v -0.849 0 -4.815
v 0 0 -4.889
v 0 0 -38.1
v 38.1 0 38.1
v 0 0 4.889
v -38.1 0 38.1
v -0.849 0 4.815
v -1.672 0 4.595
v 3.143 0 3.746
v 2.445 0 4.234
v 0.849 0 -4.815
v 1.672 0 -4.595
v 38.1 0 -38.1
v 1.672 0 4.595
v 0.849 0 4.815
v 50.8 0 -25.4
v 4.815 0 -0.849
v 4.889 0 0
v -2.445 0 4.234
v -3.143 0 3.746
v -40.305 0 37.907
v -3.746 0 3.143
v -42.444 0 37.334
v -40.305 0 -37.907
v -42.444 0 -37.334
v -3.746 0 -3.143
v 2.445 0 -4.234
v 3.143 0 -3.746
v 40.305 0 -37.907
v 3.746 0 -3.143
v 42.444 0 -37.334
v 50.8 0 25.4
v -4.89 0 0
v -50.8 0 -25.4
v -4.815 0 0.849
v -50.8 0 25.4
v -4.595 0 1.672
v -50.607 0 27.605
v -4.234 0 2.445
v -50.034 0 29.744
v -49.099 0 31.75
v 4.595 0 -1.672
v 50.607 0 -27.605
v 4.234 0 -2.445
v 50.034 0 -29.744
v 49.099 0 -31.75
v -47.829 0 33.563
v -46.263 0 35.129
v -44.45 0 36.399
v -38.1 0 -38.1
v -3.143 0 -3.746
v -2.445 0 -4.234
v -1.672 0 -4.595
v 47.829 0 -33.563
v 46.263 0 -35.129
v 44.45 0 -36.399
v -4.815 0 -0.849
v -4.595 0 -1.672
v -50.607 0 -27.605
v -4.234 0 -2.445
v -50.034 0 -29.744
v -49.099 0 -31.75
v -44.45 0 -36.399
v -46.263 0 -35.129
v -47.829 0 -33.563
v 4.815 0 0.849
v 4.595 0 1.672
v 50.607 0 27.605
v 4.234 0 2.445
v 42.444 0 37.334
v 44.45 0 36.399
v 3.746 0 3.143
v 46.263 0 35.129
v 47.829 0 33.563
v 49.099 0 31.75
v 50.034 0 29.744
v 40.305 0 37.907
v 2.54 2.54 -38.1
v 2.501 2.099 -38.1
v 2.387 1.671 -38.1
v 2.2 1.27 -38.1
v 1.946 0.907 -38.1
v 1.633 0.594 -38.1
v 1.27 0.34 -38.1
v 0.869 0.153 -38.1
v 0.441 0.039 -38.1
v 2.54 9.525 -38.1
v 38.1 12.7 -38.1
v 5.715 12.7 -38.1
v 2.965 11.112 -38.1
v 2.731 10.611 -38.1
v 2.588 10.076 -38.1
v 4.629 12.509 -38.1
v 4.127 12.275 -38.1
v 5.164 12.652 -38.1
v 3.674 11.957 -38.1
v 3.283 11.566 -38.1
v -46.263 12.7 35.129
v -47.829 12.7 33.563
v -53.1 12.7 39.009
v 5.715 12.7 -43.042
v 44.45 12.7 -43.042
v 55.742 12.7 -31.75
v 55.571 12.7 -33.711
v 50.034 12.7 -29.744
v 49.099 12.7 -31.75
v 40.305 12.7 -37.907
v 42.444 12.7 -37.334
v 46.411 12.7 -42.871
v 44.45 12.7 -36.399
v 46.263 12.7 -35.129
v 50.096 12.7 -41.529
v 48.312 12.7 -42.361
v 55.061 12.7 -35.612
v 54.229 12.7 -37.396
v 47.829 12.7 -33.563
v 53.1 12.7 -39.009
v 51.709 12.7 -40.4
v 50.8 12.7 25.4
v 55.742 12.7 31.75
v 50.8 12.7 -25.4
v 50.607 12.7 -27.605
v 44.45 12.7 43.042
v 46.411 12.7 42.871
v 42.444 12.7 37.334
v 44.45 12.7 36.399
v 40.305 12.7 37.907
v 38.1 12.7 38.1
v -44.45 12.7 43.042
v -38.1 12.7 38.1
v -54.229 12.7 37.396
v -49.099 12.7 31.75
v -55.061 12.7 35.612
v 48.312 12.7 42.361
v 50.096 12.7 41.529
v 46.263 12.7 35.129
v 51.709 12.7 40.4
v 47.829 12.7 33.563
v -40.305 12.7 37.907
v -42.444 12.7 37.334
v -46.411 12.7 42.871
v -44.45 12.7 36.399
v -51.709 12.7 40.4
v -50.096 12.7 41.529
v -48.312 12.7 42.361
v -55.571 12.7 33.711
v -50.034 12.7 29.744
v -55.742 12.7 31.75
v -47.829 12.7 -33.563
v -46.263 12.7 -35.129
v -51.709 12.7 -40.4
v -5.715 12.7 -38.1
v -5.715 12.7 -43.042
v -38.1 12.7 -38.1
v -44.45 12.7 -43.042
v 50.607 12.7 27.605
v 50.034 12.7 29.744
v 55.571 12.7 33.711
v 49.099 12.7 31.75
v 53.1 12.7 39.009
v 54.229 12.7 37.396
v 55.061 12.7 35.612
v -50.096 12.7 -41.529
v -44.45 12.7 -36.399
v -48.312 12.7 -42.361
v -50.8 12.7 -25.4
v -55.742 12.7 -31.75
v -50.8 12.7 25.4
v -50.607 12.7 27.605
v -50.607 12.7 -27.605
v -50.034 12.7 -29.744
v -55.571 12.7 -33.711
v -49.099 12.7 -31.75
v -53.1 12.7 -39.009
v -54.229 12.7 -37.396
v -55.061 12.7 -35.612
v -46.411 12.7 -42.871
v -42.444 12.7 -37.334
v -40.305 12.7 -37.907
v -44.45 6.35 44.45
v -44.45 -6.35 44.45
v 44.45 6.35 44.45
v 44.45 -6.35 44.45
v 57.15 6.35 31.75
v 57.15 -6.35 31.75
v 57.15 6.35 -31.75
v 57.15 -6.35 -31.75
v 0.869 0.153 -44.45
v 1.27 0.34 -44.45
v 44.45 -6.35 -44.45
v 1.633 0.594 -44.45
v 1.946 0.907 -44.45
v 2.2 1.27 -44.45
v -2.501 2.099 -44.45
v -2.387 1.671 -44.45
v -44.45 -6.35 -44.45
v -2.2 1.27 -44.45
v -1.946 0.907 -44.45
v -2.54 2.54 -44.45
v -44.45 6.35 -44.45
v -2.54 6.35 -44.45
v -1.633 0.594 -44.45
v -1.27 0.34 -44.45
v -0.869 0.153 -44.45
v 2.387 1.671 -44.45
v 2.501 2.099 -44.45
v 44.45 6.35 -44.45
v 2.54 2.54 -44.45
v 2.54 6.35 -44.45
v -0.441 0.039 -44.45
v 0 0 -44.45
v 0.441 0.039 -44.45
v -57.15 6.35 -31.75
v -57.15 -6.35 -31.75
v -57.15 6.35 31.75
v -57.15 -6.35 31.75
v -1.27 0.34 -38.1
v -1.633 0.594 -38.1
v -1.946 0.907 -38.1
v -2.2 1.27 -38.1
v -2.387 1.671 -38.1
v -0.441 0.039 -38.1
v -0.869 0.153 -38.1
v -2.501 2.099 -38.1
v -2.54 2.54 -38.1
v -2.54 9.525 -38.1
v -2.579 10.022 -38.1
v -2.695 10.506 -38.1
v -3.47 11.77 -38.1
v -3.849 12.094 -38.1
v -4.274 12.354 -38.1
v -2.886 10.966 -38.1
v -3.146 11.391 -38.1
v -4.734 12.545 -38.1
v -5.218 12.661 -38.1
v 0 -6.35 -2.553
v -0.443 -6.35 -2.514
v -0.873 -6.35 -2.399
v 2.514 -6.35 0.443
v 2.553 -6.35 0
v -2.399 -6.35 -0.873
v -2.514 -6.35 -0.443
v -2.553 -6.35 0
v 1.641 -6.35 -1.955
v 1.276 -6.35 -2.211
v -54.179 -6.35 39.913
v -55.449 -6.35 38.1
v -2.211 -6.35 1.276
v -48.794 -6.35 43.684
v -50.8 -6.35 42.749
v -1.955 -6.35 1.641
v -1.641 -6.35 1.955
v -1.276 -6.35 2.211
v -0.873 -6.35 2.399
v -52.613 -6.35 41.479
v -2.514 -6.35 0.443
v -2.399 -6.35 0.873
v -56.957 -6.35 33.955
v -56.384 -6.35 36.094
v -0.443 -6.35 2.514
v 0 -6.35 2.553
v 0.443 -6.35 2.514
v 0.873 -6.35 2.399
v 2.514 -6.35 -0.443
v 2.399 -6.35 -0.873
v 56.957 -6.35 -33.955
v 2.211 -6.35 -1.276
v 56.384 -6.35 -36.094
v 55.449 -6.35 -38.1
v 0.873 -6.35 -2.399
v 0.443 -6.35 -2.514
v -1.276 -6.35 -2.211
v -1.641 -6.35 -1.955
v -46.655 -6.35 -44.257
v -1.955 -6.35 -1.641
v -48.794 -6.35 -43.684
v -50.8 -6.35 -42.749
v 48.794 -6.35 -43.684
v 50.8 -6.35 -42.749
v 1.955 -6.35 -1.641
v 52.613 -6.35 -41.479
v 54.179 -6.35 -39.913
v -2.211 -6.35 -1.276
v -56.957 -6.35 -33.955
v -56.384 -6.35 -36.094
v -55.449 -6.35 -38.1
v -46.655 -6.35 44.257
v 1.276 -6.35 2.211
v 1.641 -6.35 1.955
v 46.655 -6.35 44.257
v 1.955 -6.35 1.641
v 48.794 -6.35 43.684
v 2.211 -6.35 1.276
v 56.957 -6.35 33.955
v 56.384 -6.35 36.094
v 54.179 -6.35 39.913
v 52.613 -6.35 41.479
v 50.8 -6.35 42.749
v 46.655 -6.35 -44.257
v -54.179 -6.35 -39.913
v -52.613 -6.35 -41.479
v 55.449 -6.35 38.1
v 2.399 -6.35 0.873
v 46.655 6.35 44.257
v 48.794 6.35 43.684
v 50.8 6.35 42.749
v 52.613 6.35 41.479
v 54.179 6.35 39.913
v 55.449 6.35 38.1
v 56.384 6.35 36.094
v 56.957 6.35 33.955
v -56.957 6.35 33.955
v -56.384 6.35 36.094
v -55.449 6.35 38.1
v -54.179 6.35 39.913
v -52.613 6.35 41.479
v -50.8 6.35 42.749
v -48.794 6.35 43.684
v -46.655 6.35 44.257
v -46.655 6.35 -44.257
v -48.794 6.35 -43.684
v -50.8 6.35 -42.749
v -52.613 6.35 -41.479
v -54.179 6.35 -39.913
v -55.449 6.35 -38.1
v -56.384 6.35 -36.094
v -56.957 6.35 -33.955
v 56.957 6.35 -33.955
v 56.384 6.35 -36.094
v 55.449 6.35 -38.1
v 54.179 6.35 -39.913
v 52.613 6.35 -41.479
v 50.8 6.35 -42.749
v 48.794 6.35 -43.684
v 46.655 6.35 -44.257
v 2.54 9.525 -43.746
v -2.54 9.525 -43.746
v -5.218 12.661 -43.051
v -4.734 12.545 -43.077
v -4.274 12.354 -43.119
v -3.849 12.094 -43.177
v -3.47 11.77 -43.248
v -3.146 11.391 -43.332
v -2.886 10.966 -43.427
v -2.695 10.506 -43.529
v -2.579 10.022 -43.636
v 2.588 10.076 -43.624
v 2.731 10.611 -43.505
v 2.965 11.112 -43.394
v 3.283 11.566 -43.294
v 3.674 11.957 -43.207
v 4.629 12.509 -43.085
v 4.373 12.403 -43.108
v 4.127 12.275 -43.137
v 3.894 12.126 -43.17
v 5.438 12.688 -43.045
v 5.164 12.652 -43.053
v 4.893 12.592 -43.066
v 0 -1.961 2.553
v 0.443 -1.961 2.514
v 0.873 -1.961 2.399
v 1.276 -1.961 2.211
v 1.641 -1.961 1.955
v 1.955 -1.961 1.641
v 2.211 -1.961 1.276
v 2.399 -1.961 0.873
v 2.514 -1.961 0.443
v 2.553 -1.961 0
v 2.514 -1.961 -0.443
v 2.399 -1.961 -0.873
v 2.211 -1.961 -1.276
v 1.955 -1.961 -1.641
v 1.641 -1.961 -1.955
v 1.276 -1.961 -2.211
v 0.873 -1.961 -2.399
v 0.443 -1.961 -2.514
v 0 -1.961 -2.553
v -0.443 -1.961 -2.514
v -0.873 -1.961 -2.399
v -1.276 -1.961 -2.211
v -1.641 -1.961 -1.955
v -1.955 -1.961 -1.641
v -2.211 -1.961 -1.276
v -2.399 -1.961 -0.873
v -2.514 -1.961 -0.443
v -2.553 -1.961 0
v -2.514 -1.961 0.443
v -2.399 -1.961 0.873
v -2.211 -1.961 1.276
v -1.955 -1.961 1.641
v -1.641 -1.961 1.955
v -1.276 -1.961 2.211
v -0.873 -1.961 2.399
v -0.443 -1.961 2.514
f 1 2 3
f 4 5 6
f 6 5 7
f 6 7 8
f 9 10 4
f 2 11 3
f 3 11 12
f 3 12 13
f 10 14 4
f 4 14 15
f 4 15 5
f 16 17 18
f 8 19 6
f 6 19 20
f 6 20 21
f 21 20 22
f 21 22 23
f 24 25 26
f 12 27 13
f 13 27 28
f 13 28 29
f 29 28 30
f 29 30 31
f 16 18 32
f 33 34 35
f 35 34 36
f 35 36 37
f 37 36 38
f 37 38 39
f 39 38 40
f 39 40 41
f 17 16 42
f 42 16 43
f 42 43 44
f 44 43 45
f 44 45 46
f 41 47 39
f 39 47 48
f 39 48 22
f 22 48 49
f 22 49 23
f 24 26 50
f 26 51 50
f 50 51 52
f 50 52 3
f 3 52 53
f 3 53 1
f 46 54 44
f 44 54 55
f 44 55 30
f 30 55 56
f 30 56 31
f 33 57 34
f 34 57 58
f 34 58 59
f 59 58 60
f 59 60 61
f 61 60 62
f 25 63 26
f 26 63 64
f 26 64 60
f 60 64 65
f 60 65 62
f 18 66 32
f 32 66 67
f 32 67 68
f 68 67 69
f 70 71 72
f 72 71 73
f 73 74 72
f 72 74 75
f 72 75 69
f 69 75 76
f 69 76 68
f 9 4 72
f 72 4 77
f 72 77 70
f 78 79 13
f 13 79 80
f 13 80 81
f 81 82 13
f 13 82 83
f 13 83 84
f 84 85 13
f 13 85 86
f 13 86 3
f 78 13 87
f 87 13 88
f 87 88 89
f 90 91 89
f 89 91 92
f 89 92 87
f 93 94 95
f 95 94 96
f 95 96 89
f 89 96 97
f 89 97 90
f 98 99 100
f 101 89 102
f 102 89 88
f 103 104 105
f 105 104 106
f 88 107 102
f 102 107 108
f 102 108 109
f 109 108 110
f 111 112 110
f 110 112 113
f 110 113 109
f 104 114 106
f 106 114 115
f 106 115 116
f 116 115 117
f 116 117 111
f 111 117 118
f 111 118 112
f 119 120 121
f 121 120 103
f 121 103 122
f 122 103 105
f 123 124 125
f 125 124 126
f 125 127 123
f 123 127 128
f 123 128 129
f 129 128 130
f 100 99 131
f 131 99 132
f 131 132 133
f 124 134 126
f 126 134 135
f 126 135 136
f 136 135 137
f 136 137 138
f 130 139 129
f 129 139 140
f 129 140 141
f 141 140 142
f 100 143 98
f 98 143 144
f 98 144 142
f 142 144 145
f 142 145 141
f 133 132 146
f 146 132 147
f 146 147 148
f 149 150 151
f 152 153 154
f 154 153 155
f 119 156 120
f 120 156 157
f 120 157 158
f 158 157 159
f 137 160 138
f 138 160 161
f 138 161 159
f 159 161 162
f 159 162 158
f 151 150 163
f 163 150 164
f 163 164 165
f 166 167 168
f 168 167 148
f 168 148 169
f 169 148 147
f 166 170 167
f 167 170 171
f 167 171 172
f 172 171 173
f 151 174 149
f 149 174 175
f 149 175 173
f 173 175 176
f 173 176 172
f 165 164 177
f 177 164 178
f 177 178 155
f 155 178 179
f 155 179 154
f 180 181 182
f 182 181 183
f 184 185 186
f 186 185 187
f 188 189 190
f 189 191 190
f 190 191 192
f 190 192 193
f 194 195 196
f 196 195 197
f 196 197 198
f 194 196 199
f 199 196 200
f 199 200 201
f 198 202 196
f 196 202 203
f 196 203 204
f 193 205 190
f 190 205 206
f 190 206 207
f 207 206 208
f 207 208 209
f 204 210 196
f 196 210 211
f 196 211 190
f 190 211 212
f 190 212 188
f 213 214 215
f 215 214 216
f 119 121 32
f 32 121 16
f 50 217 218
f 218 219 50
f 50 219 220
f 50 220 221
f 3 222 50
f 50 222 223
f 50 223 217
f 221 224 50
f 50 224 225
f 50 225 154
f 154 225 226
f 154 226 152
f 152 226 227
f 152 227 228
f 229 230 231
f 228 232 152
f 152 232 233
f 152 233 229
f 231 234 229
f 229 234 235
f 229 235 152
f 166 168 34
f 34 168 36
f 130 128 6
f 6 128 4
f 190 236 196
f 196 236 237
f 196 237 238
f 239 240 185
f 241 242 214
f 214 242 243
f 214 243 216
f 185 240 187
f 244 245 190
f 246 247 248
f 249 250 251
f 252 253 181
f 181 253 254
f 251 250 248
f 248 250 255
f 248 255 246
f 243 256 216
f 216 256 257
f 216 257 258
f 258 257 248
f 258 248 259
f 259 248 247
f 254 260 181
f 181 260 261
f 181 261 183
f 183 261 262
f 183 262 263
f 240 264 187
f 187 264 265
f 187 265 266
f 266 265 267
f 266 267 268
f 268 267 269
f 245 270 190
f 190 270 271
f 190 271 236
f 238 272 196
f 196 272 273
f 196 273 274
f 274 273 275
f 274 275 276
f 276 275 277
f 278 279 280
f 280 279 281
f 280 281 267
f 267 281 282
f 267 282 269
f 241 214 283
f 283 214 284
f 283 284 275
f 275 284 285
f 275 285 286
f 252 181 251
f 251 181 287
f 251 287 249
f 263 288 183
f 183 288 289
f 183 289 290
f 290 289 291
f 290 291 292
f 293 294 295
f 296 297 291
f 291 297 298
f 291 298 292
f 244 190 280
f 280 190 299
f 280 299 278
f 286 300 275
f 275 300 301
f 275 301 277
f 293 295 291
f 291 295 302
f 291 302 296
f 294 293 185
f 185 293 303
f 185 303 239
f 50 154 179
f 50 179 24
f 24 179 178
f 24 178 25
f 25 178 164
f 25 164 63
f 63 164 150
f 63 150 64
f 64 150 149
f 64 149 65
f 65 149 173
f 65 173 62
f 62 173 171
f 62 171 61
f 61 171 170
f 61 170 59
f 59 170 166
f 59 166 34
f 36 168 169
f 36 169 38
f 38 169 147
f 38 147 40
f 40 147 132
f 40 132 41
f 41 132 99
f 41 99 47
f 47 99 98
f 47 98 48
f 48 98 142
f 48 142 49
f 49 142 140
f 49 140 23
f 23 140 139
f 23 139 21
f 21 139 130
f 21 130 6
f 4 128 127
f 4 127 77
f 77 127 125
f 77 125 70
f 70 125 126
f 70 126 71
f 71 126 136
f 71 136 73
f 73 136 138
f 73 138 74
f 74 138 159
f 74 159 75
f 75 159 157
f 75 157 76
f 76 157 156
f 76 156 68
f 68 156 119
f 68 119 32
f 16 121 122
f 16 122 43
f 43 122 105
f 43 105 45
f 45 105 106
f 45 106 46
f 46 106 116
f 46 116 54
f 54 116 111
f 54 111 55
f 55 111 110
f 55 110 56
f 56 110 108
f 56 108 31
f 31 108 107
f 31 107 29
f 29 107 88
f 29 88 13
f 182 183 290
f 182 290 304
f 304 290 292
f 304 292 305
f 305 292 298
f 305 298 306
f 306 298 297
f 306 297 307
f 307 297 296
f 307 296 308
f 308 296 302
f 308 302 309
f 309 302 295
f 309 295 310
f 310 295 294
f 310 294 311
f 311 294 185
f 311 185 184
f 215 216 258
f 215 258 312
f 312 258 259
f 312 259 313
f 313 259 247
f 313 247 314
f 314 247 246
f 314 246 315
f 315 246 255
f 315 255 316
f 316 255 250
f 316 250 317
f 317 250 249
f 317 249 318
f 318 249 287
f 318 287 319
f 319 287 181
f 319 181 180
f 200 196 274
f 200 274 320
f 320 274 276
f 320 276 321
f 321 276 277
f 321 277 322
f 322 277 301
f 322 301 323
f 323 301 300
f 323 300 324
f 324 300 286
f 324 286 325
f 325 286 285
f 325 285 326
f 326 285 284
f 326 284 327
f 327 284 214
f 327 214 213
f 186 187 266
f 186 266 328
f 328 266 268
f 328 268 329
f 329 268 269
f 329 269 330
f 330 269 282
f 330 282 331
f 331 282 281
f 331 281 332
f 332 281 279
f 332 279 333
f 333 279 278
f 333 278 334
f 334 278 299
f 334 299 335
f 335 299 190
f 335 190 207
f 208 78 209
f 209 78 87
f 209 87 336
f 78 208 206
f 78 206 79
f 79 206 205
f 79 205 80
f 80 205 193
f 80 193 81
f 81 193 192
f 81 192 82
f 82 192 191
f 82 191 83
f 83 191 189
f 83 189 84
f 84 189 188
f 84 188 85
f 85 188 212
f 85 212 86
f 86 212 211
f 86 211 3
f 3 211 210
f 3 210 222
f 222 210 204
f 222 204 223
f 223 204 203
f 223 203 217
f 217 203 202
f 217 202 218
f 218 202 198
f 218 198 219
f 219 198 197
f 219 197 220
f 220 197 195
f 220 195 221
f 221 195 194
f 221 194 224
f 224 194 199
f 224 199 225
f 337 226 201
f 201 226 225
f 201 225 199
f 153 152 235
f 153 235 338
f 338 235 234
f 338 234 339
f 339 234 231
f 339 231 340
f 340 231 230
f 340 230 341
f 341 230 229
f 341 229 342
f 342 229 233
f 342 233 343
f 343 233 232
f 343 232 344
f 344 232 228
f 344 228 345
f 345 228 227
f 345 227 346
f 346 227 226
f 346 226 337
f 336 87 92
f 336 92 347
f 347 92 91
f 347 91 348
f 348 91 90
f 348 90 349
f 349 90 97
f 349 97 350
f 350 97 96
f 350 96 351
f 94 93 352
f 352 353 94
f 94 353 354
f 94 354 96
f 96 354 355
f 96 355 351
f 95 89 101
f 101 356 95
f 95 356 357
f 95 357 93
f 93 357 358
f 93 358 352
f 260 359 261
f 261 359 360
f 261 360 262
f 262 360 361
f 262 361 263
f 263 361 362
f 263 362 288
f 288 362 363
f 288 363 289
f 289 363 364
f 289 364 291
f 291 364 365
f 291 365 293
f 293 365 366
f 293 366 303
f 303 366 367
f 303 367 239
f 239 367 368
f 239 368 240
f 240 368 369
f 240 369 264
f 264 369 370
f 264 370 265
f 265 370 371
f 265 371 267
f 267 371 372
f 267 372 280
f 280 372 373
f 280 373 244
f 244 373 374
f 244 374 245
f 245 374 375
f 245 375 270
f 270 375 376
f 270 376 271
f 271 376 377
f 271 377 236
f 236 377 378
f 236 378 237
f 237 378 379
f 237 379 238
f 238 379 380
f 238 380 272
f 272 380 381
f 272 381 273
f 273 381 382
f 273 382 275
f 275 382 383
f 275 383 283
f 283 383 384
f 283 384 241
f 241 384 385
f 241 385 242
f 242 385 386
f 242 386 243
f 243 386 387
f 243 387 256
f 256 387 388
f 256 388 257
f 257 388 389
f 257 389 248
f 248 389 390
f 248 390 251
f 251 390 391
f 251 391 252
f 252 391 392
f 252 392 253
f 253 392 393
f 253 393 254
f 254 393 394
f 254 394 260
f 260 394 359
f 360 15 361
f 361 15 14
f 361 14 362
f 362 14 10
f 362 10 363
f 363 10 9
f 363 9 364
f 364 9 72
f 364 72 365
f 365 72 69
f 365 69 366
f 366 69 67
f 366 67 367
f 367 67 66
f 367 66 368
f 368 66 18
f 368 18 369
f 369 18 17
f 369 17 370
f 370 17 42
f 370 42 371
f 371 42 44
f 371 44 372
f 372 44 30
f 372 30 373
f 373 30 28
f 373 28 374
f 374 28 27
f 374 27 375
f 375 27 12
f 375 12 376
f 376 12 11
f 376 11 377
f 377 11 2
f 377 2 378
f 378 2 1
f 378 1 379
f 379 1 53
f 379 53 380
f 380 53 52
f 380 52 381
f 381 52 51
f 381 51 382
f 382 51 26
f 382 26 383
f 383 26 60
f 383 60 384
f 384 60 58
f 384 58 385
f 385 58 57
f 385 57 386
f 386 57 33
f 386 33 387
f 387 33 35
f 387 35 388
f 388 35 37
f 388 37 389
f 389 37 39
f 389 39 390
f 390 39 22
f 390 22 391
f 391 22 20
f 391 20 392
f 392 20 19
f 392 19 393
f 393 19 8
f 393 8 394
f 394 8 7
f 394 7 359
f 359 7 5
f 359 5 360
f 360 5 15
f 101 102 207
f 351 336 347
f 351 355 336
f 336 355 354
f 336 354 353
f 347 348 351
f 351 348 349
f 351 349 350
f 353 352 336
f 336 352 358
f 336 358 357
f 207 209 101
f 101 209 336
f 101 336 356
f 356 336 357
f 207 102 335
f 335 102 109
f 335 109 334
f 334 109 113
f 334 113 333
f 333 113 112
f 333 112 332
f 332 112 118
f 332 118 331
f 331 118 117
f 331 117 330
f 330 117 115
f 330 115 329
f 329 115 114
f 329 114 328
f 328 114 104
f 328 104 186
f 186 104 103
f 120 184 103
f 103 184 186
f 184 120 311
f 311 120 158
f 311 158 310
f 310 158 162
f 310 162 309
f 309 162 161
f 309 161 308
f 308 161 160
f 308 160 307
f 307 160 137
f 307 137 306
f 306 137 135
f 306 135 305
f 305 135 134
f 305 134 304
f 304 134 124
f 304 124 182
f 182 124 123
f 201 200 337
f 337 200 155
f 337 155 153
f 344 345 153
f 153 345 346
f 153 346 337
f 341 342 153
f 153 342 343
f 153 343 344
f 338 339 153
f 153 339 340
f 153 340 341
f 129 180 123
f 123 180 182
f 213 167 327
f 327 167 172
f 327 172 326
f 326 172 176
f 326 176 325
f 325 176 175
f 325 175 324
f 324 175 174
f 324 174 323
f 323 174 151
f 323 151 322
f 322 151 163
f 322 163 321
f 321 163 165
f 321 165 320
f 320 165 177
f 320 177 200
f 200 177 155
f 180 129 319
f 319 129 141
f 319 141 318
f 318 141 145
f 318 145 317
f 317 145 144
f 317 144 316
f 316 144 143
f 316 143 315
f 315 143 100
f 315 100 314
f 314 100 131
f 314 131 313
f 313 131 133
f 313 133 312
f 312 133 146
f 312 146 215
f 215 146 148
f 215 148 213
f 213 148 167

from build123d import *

# Parameters (mm, degrees)
SKETCH1_W                                          = 114.3
SKETCH1_H                                          = 88.9
SKETCH1_W_2                                        = 101.6
SKETCH1_H_2                                        = 76.2
BOSS_EXTRUDE1_DEPTH                                = 12.7
SKETCH2_W                                          = 114.3
SKETCH2_H                                          = 88.9
BOSS_EXTRUDE2_DEPTH                                = 6.35
FILLET1_R                                          = 12.7
CUT_EXTRUDE1_REACH                                 = 108.445
FILLET2_R                                          = 3.175
CSK_FOR_10_FLAT_HEAD_MACHINE_SCREW_100_D           = 5.1054
CSK_FOR_10_FLAT_HEAD_MACHINE_SCREW_100_CSINK_D     = 9.779
CSK_FOR_10_FLAT_HEAD_MACHINE_SCREW_100_CSINK_ANGLE = 100
CHAMFER1_SIZE                                      = 1.407761108
CHAMFER1_SIZE_2                                    = 6.35


with BuildPart() as part:
    # Sketch1 → Boss-Extrude1 (new body)
    with BuildSketch(Plane(origin=(0, 0, 0), x_dir=(1, 0, 0), z_dir=(0, 1, 0))):
        Rectangle(SKETCH1_W, SKETCH1_H)
        Rectangle(SKETCH1_W_2, SKETCH1_H_2, mode=Mode.SUBTRACT)
    extrude(amount=BOSS_EXTRUDE1_DEPTH)

    # Sketch2 → Boss-Extrude2 (add)
    with BuildSketch(Plane.XZ):
        Rectangle(SKETCH2_W, SKETCH2_H)
    extrude(amount=BOSS_EXTRUDE2_DEPTH)

    # Fillet1
    fillet1_edges = [part.edges().sort_by_distance(p)[0] for p in [
        (50.8, 6.35, 38.1),
        (50.8, 6.35, -38.1),
        (-50.8, 6.35, -38.1),
        (-50.8, 6.35, 38.1),
        (-57.15, 3.175, 44.45),
        (-57.15, 3.175, -44.45),
        (57.15, 3.175, -44.45),
        (57.15, 3.175, 44.45),
    ]]
    fillet(fillet1_edges, radius=FILLET1_R)

    # Sketch3 → Cut-Extrude1 (cut, up to next)
    with BuildSketch(Plane(origin=(0, 0, -44.45), x_dir=(-1, 0, 0), z_dir=(0, 0, -1)), mode=Mode.PRIVATE) as cut_extrude1_sk1:
        with BuildLine():
            Line((2.54, 22.86), (2.54, 2.54))
            ThreePointArc((2.54, 2.54), (0, 0), (-2.54, 2.54))
            Line((-2.54, 2.54), (-2.54, 22.86))
            ThreePointArc((-2.54, 22.86), (0, 25.4), (2.54, 22.86))
        make_face()
    cut_extrude1_tool1 = extrude(cut_extrude1_sk1.sketch, amount=-CUT_EXTRUDE1_REACH, mode=Mode.PRIVATE) & part.part
    add(cut_extrude1_tool1.solids().sort_by_distance((0, 12.7, -44.45))[0], mode=Mode.SUBTRACT)

    # Fillet2
    fillet2_edges = [part.edges().sort_by_distance(p)[0] for p in [
        (2.54, 12.7, -41.275),
        (-2.54, 12.7, -41.275),
    ]]
    fillet(fillet2_edges, radius=FILLET2_R)

    # CSK for #10 Flat Head Machine Screw (100)1 (through all)
    with Locations(Plane(origin=(0, 0, 0), x_dir=(1, 0, 0), z_dir=(0, 1, 0))):
        with Locations((0, 0)):
            CounterSinkHole(CSK_FOR_10_FLAT_HEAD_MACHINE_SCREW_100_D / 2, CSK_FOR_10_FLAT_HEAD_MACHINE_SCREW_100_CSINK_D / 2, counter_sink_angle=CSK_FOR_10_FLAT_HEAD_MACHINE_SCREW_100_CSINK_ANGLE)

    # Chamfer1
    # the kernel refuses this chamfer: 6.35, 1.407761108 mm, written as the material it takes off along each edge
    with BuildSketch(Plane(origin=(-44.45, 12.7, -44.45), x_dir=(0, 0.16714603522124954, 0.9859321492424399), z_dir=(1, 0, 0)), Plane(origin=(-10.78052054, 12.7, -44.45), x_dir=(0, 0.16714603522124954, 0.9859321492424399), z_dir=(1, 0, 0))) as chamfer1_piece_1:
        Polygon((CHAMFER1_SIZE * 0.98593214909, CHAMFER1_SIZE * 0.167146035195), (-CHAMFER1_SIZE_2 * 0.167146035221, CHAMFER1_SIZE_2 * 0.985932149242), (0, 0), align=None)
    extrude(amount=55.23052054, mode=Mode.SUBTRACT)
    with BuildSketch(Plane(origin=(57.15, 12.7, -31.75), x_dir=(-0.9859321492424399, 0.16714603522124954, 0), z_dir=(0, 0, 1)), Plane(origin=(-57.15, 12.7, 31.75), x_dir=(0.9859321492424399, 0.16714603522124954, 0), z_dir=(0, 0, -1))) as chamfer1_piece_2:
        Polygon((CHAMFER1_SIZE * 0.98593214909, CHAMFER1_SIZE * 0.167146035195), (-CHAMFER1_SIZE_2 * 0.167146035221, CHAMFER1_SIZE_2 * 0.985932149242), (0, 0), align=None)
    extrude(amount=63.5, mode=Mode.SUBTRACT)
    with BuildSketch(Plane(origin=(44.45, 12.7, 44.45), x_dir=(0, 0.16714603522124954, -0.9859321492424399), z_dir=(-1, 0, 0))) as chamfer1_piece_3:
        Polygon((CHAMFER1_SIZE * 0.98593214909, CHAMFER1_SIZE * 0.167146035195), (-CHAMFER1_SIZE_2 * 0.167146035221, CHAMFER1_SIZE_2 * 0.985932149242), (0, 0), align=None)
    extrude(amount=88.9, mode=Mode.SUBTRACT)
    with BuildSketch(Plane(origin=(44.45, 12.7, -31.75), x_dir=(1, 0, 0), z_dir=(0, 0, 1))) as chamfer1_piece_4:
        Polygon((12.7 - CHAMFER1_SIZE, 0), (12.7, -CHAMFER1_SIZE_2), (12.7, 0), align=None)
    revolve(axis=Axis((44.45, 12.7, -31.75), (0, 1, 0)), revolution_arc=90, mode=Mode.SUBTRACT)
    with BuildSketch(Plane(origin=(-44.45, 12.7, -31.75), x_dir=(-1, 0, 0), z_dir=(0, 0, 1))) as chamfer1_piece_5:
        Polygon((12.7 - CHAMFER1_SIZE, 0), (12.7, CHAMFER1_SIZE_2), (12.7, 0), align=None)
    revolve(axis=Axis((-44.45, 12.7, -31.75), (0, -1, 0)), revolution_arc=90, mode=Mode.SUBTRACT)
    with BuildSketch(Plane(origin=(-44.45, 12.7, 31.75), x_dir=(-1, 0, 0), z_dir=(0, 0, -1))) as chamfer1_piece_6:
        Polygon((12.7 - CHAMFER1_SIZE, 0), (12.7, -CHAMFER1_SIZE_2), (12.7, 0), align=None)
    revolve(axis=Axis((-44.45, 12.7, 31.75), (0, 1, 0)), revolution_arc=90, mode=Mode.SUBTRACT)
    with BuildSketch(Plane(origin=(44.45, 12.7, 31.75), x_dir=(0, 0, 1), z_dir=(-1, 0, 0))) as chamfer1_piece_7:
        Polygon((12.7 - CHAMFER1_SIZE, 0), (12.7, -CHAMFER1_SIZE_2), (12.7, 0), align=None)
    revolve(axis=Axis((44.45, 12.7, 31.75), (0, 1, 0)), revolution_arc=90, mode=Mode.SUBTRACT)


solid = part.part
